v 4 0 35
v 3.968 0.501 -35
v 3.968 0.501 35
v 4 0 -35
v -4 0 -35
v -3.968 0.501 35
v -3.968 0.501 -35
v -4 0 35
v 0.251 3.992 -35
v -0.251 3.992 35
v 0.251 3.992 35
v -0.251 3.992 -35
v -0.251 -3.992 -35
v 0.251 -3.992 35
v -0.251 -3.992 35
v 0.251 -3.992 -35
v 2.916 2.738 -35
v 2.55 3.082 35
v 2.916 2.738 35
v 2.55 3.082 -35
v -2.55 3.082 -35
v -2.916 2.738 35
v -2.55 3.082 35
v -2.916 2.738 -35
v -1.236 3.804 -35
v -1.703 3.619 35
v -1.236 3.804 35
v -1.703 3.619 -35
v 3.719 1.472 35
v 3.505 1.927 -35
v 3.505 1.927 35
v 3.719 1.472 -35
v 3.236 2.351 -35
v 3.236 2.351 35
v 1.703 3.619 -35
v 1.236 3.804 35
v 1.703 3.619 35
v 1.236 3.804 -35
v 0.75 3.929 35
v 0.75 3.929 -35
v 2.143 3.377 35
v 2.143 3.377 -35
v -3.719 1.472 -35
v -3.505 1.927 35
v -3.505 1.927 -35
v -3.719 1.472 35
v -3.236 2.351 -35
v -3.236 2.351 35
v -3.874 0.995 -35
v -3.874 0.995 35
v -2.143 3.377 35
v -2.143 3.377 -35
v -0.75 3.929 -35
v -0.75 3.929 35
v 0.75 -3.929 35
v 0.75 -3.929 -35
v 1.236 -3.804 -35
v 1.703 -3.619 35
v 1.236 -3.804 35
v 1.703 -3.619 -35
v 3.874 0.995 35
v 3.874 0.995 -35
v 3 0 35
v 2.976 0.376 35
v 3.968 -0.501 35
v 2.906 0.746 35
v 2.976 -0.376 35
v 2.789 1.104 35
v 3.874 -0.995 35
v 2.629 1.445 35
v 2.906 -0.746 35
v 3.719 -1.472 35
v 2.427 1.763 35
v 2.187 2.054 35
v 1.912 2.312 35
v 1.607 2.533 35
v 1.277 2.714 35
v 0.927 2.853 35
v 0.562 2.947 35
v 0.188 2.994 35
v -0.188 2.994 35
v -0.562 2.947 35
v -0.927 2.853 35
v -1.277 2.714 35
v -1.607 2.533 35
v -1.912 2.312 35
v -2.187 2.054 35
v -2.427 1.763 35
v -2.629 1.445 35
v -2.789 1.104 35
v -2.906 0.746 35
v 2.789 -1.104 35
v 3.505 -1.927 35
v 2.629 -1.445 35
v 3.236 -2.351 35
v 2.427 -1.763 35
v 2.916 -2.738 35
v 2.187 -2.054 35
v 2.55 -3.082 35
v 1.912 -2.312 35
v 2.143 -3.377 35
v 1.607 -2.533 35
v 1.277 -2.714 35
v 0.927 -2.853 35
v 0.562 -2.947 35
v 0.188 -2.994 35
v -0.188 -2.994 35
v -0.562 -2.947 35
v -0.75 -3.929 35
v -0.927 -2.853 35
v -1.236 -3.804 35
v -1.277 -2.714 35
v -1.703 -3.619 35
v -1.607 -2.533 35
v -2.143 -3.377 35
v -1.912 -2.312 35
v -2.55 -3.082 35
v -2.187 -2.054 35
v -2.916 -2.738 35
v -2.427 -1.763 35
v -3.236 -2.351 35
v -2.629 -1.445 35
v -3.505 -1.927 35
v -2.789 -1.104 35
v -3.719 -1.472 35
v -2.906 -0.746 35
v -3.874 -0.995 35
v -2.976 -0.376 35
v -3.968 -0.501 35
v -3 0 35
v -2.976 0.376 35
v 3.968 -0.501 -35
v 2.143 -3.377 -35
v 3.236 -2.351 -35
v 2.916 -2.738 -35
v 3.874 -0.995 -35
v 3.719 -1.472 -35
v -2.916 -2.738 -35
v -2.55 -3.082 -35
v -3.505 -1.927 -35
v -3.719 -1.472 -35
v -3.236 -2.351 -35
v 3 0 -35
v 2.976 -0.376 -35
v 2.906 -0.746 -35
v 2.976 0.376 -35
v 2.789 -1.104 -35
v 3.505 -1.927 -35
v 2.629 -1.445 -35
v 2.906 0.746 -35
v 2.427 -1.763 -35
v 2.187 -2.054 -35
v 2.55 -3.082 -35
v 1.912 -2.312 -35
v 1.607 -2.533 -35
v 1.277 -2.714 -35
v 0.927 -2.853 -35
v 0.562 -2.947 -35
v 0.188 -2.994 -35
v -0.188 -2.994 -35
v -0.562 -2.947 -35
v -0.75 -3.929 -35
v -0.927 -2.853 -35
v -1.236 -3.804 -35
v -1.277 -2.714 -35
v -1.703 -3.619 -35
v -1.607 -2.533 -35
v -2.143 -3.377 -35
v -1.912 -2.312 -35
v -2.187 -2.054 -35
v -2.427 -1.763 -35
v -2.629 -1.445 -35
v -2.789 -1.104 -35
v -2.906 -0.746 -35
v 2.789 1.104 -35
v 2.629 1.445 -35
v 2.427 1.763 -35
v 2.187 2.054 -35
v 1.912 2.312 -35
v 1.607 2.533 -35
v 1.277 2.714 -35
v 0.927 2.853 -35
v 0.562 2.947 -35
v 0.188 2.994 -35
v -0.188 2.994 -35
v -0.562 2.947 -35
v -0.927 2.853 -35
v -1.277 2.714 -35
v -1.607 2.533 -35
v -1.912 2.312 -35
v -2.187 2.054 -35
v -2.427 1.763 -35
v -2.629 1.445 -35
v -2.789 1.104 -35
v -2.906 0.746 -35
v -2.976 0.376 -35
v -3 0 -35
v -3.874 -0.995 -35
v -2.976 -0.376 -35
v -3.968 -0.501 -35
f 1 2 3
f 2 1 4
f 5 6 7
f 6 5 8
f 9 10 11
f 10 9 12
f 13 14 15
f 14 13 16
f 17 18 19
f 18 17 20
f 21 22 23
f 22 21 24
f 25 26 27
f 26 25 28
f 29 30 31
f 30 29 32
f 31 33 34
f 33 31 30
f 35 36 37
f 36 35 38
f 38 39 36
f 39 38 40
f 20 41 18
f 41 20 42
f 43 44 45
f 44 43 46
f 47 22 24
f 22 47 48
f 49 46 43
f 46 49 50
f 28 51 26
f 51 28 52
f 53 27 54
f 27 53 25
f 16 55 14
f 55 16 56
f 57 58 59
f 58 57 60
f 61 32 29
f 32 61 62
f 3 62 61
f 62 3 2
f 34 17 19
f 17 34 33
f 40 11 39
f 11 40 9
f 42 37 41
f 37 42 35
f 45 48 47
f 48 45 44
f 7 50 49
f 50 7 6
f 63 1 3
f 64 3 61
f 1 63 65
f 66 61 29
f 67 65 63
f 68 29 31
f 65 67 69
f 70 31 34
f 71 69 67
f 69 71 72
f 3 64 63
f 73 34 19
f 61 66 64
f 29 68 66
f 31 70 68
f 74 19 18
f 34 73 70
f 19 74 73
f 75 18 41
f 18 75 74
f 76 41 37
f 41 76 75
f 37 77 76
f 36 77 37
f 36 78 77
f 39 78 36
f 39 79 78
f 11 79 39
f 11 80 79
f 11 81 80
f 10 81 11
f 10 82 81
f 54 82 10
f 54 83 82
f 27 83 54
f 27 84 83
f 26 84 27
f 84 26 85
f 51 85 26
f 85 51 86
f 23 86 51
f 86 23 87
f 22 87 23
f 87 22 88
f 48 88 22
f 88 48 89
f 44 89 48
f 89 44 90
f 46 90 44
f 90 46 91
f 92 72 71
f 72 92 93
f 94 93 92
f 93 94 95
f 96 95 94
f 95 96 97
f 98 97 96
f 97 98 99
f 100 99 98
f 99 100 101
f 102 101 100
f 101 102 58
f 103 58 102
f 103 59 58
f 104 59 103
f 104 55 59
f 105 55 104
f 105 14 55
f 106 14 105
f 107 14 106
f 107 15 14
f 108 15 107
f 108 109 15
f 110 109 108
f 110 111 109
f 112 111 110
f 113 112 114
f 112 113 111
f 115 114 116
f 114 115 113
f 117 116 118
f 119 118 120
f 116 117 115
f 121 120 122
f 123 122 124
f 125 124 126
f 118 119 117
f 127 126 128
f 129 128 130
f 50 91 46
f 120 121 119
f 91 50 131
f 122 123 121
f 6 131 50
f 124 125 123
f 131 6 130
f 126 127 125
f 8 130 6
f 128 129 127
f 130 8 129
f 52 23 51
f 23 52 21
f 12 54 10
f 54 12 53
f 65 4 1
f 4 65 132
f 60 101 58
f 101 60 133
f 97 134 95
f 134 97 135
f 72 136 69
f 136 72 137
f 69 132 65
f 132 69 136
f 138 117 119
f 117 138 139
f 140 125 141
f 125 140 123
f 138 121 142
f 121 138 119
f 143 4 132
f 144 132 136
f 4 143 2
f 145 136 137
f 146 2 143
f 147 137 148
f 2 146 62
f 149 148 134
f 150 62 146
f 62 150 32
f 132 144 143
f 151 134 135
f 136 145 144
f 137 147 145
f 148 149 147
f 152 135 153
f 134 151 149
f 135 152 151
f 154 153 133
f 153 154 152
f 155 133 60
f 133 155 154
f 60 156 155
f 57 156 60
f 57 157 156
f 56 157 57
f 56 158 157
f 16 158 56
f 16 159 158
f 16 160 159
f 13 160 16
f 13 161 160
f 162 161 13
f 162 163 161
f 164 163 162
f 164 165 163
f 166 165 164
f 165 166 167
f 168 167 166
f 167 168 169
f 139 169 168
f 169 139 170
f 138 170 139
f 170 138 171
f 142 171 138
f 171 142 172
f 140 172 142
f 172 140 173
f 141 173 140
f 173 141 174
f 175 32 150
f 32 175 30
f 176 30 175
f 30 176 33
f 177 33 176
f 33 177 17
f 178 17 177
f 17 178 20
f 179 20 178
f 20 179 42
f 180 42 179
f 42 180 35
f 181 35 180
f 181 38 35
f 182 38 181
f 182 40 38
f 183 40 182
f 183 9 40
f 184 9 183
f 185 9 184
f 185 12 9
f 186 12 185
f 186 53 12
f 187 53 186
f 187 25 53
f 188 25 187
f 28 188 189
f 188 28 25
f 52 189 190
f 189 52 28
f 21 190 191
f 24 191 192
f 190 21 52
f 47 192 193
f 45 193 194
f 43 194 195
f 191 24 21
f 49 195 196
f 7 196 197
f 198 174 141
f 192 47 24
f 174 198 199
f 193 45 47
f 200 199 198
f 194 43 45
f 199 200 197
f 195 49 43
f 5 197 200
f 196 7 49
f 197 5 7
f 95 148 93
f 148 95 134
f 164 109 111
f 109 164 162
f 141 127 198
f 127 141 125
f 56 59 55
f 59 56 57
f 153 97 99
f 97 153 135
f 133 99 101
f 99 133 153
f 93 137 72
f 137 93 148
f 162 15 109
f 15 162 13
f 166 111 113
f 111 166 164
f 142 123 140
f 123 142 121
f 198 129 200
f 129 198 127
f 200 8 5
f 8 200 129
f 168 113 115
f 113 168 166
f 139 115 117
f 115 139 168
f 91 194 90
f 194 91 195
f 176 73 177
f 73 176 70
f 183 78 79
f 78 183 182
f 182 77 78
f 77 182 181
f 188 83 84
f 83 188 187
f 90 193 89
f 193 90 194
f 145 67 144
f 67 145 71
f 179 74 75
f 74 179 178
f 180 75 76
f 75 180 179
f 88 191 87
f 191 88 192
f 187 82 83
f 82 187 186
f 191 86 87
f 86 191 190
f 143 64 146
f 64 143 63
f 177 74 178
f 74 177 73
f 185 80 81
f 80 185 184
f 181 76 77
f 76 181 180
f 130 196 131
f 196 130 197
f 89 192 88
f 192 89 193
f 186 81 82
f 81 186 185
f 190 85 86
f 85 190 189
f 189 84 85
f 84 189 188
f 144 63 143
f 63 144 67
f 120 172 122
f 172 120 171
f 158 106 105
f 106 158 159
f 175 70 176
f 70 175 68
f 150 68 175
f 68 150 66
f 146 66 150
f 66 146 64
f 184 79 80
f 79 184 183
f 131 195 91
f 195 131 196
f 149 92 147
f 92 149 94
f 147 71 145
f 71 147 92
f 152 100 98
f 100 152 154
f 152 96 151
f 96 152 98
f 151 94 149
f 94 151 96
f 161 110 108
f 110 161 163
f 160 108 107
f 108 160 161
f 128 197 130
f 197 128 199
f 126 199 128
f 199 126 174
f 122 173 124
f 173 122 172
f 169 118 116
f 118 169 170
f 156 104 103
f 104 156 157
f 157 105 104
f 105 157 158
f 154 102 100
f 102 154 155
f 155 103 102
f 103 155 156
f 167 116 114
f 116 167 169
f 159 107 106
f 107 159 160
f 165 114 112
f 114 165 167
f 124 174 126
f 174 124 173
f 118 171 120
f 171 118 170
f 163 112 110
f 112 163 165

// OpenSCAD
$fn = 50;


difference() {
	union() {
		translate(v = [0, 0, -35.0000000000]) {
			cylinder(h = 70, r = 4.0000000000);
		}
	}
	union() {
		translate(v = [0, 0, -100.0000000000]) {
			cylinder(h = 200, r = 3);
		}
	}
}
